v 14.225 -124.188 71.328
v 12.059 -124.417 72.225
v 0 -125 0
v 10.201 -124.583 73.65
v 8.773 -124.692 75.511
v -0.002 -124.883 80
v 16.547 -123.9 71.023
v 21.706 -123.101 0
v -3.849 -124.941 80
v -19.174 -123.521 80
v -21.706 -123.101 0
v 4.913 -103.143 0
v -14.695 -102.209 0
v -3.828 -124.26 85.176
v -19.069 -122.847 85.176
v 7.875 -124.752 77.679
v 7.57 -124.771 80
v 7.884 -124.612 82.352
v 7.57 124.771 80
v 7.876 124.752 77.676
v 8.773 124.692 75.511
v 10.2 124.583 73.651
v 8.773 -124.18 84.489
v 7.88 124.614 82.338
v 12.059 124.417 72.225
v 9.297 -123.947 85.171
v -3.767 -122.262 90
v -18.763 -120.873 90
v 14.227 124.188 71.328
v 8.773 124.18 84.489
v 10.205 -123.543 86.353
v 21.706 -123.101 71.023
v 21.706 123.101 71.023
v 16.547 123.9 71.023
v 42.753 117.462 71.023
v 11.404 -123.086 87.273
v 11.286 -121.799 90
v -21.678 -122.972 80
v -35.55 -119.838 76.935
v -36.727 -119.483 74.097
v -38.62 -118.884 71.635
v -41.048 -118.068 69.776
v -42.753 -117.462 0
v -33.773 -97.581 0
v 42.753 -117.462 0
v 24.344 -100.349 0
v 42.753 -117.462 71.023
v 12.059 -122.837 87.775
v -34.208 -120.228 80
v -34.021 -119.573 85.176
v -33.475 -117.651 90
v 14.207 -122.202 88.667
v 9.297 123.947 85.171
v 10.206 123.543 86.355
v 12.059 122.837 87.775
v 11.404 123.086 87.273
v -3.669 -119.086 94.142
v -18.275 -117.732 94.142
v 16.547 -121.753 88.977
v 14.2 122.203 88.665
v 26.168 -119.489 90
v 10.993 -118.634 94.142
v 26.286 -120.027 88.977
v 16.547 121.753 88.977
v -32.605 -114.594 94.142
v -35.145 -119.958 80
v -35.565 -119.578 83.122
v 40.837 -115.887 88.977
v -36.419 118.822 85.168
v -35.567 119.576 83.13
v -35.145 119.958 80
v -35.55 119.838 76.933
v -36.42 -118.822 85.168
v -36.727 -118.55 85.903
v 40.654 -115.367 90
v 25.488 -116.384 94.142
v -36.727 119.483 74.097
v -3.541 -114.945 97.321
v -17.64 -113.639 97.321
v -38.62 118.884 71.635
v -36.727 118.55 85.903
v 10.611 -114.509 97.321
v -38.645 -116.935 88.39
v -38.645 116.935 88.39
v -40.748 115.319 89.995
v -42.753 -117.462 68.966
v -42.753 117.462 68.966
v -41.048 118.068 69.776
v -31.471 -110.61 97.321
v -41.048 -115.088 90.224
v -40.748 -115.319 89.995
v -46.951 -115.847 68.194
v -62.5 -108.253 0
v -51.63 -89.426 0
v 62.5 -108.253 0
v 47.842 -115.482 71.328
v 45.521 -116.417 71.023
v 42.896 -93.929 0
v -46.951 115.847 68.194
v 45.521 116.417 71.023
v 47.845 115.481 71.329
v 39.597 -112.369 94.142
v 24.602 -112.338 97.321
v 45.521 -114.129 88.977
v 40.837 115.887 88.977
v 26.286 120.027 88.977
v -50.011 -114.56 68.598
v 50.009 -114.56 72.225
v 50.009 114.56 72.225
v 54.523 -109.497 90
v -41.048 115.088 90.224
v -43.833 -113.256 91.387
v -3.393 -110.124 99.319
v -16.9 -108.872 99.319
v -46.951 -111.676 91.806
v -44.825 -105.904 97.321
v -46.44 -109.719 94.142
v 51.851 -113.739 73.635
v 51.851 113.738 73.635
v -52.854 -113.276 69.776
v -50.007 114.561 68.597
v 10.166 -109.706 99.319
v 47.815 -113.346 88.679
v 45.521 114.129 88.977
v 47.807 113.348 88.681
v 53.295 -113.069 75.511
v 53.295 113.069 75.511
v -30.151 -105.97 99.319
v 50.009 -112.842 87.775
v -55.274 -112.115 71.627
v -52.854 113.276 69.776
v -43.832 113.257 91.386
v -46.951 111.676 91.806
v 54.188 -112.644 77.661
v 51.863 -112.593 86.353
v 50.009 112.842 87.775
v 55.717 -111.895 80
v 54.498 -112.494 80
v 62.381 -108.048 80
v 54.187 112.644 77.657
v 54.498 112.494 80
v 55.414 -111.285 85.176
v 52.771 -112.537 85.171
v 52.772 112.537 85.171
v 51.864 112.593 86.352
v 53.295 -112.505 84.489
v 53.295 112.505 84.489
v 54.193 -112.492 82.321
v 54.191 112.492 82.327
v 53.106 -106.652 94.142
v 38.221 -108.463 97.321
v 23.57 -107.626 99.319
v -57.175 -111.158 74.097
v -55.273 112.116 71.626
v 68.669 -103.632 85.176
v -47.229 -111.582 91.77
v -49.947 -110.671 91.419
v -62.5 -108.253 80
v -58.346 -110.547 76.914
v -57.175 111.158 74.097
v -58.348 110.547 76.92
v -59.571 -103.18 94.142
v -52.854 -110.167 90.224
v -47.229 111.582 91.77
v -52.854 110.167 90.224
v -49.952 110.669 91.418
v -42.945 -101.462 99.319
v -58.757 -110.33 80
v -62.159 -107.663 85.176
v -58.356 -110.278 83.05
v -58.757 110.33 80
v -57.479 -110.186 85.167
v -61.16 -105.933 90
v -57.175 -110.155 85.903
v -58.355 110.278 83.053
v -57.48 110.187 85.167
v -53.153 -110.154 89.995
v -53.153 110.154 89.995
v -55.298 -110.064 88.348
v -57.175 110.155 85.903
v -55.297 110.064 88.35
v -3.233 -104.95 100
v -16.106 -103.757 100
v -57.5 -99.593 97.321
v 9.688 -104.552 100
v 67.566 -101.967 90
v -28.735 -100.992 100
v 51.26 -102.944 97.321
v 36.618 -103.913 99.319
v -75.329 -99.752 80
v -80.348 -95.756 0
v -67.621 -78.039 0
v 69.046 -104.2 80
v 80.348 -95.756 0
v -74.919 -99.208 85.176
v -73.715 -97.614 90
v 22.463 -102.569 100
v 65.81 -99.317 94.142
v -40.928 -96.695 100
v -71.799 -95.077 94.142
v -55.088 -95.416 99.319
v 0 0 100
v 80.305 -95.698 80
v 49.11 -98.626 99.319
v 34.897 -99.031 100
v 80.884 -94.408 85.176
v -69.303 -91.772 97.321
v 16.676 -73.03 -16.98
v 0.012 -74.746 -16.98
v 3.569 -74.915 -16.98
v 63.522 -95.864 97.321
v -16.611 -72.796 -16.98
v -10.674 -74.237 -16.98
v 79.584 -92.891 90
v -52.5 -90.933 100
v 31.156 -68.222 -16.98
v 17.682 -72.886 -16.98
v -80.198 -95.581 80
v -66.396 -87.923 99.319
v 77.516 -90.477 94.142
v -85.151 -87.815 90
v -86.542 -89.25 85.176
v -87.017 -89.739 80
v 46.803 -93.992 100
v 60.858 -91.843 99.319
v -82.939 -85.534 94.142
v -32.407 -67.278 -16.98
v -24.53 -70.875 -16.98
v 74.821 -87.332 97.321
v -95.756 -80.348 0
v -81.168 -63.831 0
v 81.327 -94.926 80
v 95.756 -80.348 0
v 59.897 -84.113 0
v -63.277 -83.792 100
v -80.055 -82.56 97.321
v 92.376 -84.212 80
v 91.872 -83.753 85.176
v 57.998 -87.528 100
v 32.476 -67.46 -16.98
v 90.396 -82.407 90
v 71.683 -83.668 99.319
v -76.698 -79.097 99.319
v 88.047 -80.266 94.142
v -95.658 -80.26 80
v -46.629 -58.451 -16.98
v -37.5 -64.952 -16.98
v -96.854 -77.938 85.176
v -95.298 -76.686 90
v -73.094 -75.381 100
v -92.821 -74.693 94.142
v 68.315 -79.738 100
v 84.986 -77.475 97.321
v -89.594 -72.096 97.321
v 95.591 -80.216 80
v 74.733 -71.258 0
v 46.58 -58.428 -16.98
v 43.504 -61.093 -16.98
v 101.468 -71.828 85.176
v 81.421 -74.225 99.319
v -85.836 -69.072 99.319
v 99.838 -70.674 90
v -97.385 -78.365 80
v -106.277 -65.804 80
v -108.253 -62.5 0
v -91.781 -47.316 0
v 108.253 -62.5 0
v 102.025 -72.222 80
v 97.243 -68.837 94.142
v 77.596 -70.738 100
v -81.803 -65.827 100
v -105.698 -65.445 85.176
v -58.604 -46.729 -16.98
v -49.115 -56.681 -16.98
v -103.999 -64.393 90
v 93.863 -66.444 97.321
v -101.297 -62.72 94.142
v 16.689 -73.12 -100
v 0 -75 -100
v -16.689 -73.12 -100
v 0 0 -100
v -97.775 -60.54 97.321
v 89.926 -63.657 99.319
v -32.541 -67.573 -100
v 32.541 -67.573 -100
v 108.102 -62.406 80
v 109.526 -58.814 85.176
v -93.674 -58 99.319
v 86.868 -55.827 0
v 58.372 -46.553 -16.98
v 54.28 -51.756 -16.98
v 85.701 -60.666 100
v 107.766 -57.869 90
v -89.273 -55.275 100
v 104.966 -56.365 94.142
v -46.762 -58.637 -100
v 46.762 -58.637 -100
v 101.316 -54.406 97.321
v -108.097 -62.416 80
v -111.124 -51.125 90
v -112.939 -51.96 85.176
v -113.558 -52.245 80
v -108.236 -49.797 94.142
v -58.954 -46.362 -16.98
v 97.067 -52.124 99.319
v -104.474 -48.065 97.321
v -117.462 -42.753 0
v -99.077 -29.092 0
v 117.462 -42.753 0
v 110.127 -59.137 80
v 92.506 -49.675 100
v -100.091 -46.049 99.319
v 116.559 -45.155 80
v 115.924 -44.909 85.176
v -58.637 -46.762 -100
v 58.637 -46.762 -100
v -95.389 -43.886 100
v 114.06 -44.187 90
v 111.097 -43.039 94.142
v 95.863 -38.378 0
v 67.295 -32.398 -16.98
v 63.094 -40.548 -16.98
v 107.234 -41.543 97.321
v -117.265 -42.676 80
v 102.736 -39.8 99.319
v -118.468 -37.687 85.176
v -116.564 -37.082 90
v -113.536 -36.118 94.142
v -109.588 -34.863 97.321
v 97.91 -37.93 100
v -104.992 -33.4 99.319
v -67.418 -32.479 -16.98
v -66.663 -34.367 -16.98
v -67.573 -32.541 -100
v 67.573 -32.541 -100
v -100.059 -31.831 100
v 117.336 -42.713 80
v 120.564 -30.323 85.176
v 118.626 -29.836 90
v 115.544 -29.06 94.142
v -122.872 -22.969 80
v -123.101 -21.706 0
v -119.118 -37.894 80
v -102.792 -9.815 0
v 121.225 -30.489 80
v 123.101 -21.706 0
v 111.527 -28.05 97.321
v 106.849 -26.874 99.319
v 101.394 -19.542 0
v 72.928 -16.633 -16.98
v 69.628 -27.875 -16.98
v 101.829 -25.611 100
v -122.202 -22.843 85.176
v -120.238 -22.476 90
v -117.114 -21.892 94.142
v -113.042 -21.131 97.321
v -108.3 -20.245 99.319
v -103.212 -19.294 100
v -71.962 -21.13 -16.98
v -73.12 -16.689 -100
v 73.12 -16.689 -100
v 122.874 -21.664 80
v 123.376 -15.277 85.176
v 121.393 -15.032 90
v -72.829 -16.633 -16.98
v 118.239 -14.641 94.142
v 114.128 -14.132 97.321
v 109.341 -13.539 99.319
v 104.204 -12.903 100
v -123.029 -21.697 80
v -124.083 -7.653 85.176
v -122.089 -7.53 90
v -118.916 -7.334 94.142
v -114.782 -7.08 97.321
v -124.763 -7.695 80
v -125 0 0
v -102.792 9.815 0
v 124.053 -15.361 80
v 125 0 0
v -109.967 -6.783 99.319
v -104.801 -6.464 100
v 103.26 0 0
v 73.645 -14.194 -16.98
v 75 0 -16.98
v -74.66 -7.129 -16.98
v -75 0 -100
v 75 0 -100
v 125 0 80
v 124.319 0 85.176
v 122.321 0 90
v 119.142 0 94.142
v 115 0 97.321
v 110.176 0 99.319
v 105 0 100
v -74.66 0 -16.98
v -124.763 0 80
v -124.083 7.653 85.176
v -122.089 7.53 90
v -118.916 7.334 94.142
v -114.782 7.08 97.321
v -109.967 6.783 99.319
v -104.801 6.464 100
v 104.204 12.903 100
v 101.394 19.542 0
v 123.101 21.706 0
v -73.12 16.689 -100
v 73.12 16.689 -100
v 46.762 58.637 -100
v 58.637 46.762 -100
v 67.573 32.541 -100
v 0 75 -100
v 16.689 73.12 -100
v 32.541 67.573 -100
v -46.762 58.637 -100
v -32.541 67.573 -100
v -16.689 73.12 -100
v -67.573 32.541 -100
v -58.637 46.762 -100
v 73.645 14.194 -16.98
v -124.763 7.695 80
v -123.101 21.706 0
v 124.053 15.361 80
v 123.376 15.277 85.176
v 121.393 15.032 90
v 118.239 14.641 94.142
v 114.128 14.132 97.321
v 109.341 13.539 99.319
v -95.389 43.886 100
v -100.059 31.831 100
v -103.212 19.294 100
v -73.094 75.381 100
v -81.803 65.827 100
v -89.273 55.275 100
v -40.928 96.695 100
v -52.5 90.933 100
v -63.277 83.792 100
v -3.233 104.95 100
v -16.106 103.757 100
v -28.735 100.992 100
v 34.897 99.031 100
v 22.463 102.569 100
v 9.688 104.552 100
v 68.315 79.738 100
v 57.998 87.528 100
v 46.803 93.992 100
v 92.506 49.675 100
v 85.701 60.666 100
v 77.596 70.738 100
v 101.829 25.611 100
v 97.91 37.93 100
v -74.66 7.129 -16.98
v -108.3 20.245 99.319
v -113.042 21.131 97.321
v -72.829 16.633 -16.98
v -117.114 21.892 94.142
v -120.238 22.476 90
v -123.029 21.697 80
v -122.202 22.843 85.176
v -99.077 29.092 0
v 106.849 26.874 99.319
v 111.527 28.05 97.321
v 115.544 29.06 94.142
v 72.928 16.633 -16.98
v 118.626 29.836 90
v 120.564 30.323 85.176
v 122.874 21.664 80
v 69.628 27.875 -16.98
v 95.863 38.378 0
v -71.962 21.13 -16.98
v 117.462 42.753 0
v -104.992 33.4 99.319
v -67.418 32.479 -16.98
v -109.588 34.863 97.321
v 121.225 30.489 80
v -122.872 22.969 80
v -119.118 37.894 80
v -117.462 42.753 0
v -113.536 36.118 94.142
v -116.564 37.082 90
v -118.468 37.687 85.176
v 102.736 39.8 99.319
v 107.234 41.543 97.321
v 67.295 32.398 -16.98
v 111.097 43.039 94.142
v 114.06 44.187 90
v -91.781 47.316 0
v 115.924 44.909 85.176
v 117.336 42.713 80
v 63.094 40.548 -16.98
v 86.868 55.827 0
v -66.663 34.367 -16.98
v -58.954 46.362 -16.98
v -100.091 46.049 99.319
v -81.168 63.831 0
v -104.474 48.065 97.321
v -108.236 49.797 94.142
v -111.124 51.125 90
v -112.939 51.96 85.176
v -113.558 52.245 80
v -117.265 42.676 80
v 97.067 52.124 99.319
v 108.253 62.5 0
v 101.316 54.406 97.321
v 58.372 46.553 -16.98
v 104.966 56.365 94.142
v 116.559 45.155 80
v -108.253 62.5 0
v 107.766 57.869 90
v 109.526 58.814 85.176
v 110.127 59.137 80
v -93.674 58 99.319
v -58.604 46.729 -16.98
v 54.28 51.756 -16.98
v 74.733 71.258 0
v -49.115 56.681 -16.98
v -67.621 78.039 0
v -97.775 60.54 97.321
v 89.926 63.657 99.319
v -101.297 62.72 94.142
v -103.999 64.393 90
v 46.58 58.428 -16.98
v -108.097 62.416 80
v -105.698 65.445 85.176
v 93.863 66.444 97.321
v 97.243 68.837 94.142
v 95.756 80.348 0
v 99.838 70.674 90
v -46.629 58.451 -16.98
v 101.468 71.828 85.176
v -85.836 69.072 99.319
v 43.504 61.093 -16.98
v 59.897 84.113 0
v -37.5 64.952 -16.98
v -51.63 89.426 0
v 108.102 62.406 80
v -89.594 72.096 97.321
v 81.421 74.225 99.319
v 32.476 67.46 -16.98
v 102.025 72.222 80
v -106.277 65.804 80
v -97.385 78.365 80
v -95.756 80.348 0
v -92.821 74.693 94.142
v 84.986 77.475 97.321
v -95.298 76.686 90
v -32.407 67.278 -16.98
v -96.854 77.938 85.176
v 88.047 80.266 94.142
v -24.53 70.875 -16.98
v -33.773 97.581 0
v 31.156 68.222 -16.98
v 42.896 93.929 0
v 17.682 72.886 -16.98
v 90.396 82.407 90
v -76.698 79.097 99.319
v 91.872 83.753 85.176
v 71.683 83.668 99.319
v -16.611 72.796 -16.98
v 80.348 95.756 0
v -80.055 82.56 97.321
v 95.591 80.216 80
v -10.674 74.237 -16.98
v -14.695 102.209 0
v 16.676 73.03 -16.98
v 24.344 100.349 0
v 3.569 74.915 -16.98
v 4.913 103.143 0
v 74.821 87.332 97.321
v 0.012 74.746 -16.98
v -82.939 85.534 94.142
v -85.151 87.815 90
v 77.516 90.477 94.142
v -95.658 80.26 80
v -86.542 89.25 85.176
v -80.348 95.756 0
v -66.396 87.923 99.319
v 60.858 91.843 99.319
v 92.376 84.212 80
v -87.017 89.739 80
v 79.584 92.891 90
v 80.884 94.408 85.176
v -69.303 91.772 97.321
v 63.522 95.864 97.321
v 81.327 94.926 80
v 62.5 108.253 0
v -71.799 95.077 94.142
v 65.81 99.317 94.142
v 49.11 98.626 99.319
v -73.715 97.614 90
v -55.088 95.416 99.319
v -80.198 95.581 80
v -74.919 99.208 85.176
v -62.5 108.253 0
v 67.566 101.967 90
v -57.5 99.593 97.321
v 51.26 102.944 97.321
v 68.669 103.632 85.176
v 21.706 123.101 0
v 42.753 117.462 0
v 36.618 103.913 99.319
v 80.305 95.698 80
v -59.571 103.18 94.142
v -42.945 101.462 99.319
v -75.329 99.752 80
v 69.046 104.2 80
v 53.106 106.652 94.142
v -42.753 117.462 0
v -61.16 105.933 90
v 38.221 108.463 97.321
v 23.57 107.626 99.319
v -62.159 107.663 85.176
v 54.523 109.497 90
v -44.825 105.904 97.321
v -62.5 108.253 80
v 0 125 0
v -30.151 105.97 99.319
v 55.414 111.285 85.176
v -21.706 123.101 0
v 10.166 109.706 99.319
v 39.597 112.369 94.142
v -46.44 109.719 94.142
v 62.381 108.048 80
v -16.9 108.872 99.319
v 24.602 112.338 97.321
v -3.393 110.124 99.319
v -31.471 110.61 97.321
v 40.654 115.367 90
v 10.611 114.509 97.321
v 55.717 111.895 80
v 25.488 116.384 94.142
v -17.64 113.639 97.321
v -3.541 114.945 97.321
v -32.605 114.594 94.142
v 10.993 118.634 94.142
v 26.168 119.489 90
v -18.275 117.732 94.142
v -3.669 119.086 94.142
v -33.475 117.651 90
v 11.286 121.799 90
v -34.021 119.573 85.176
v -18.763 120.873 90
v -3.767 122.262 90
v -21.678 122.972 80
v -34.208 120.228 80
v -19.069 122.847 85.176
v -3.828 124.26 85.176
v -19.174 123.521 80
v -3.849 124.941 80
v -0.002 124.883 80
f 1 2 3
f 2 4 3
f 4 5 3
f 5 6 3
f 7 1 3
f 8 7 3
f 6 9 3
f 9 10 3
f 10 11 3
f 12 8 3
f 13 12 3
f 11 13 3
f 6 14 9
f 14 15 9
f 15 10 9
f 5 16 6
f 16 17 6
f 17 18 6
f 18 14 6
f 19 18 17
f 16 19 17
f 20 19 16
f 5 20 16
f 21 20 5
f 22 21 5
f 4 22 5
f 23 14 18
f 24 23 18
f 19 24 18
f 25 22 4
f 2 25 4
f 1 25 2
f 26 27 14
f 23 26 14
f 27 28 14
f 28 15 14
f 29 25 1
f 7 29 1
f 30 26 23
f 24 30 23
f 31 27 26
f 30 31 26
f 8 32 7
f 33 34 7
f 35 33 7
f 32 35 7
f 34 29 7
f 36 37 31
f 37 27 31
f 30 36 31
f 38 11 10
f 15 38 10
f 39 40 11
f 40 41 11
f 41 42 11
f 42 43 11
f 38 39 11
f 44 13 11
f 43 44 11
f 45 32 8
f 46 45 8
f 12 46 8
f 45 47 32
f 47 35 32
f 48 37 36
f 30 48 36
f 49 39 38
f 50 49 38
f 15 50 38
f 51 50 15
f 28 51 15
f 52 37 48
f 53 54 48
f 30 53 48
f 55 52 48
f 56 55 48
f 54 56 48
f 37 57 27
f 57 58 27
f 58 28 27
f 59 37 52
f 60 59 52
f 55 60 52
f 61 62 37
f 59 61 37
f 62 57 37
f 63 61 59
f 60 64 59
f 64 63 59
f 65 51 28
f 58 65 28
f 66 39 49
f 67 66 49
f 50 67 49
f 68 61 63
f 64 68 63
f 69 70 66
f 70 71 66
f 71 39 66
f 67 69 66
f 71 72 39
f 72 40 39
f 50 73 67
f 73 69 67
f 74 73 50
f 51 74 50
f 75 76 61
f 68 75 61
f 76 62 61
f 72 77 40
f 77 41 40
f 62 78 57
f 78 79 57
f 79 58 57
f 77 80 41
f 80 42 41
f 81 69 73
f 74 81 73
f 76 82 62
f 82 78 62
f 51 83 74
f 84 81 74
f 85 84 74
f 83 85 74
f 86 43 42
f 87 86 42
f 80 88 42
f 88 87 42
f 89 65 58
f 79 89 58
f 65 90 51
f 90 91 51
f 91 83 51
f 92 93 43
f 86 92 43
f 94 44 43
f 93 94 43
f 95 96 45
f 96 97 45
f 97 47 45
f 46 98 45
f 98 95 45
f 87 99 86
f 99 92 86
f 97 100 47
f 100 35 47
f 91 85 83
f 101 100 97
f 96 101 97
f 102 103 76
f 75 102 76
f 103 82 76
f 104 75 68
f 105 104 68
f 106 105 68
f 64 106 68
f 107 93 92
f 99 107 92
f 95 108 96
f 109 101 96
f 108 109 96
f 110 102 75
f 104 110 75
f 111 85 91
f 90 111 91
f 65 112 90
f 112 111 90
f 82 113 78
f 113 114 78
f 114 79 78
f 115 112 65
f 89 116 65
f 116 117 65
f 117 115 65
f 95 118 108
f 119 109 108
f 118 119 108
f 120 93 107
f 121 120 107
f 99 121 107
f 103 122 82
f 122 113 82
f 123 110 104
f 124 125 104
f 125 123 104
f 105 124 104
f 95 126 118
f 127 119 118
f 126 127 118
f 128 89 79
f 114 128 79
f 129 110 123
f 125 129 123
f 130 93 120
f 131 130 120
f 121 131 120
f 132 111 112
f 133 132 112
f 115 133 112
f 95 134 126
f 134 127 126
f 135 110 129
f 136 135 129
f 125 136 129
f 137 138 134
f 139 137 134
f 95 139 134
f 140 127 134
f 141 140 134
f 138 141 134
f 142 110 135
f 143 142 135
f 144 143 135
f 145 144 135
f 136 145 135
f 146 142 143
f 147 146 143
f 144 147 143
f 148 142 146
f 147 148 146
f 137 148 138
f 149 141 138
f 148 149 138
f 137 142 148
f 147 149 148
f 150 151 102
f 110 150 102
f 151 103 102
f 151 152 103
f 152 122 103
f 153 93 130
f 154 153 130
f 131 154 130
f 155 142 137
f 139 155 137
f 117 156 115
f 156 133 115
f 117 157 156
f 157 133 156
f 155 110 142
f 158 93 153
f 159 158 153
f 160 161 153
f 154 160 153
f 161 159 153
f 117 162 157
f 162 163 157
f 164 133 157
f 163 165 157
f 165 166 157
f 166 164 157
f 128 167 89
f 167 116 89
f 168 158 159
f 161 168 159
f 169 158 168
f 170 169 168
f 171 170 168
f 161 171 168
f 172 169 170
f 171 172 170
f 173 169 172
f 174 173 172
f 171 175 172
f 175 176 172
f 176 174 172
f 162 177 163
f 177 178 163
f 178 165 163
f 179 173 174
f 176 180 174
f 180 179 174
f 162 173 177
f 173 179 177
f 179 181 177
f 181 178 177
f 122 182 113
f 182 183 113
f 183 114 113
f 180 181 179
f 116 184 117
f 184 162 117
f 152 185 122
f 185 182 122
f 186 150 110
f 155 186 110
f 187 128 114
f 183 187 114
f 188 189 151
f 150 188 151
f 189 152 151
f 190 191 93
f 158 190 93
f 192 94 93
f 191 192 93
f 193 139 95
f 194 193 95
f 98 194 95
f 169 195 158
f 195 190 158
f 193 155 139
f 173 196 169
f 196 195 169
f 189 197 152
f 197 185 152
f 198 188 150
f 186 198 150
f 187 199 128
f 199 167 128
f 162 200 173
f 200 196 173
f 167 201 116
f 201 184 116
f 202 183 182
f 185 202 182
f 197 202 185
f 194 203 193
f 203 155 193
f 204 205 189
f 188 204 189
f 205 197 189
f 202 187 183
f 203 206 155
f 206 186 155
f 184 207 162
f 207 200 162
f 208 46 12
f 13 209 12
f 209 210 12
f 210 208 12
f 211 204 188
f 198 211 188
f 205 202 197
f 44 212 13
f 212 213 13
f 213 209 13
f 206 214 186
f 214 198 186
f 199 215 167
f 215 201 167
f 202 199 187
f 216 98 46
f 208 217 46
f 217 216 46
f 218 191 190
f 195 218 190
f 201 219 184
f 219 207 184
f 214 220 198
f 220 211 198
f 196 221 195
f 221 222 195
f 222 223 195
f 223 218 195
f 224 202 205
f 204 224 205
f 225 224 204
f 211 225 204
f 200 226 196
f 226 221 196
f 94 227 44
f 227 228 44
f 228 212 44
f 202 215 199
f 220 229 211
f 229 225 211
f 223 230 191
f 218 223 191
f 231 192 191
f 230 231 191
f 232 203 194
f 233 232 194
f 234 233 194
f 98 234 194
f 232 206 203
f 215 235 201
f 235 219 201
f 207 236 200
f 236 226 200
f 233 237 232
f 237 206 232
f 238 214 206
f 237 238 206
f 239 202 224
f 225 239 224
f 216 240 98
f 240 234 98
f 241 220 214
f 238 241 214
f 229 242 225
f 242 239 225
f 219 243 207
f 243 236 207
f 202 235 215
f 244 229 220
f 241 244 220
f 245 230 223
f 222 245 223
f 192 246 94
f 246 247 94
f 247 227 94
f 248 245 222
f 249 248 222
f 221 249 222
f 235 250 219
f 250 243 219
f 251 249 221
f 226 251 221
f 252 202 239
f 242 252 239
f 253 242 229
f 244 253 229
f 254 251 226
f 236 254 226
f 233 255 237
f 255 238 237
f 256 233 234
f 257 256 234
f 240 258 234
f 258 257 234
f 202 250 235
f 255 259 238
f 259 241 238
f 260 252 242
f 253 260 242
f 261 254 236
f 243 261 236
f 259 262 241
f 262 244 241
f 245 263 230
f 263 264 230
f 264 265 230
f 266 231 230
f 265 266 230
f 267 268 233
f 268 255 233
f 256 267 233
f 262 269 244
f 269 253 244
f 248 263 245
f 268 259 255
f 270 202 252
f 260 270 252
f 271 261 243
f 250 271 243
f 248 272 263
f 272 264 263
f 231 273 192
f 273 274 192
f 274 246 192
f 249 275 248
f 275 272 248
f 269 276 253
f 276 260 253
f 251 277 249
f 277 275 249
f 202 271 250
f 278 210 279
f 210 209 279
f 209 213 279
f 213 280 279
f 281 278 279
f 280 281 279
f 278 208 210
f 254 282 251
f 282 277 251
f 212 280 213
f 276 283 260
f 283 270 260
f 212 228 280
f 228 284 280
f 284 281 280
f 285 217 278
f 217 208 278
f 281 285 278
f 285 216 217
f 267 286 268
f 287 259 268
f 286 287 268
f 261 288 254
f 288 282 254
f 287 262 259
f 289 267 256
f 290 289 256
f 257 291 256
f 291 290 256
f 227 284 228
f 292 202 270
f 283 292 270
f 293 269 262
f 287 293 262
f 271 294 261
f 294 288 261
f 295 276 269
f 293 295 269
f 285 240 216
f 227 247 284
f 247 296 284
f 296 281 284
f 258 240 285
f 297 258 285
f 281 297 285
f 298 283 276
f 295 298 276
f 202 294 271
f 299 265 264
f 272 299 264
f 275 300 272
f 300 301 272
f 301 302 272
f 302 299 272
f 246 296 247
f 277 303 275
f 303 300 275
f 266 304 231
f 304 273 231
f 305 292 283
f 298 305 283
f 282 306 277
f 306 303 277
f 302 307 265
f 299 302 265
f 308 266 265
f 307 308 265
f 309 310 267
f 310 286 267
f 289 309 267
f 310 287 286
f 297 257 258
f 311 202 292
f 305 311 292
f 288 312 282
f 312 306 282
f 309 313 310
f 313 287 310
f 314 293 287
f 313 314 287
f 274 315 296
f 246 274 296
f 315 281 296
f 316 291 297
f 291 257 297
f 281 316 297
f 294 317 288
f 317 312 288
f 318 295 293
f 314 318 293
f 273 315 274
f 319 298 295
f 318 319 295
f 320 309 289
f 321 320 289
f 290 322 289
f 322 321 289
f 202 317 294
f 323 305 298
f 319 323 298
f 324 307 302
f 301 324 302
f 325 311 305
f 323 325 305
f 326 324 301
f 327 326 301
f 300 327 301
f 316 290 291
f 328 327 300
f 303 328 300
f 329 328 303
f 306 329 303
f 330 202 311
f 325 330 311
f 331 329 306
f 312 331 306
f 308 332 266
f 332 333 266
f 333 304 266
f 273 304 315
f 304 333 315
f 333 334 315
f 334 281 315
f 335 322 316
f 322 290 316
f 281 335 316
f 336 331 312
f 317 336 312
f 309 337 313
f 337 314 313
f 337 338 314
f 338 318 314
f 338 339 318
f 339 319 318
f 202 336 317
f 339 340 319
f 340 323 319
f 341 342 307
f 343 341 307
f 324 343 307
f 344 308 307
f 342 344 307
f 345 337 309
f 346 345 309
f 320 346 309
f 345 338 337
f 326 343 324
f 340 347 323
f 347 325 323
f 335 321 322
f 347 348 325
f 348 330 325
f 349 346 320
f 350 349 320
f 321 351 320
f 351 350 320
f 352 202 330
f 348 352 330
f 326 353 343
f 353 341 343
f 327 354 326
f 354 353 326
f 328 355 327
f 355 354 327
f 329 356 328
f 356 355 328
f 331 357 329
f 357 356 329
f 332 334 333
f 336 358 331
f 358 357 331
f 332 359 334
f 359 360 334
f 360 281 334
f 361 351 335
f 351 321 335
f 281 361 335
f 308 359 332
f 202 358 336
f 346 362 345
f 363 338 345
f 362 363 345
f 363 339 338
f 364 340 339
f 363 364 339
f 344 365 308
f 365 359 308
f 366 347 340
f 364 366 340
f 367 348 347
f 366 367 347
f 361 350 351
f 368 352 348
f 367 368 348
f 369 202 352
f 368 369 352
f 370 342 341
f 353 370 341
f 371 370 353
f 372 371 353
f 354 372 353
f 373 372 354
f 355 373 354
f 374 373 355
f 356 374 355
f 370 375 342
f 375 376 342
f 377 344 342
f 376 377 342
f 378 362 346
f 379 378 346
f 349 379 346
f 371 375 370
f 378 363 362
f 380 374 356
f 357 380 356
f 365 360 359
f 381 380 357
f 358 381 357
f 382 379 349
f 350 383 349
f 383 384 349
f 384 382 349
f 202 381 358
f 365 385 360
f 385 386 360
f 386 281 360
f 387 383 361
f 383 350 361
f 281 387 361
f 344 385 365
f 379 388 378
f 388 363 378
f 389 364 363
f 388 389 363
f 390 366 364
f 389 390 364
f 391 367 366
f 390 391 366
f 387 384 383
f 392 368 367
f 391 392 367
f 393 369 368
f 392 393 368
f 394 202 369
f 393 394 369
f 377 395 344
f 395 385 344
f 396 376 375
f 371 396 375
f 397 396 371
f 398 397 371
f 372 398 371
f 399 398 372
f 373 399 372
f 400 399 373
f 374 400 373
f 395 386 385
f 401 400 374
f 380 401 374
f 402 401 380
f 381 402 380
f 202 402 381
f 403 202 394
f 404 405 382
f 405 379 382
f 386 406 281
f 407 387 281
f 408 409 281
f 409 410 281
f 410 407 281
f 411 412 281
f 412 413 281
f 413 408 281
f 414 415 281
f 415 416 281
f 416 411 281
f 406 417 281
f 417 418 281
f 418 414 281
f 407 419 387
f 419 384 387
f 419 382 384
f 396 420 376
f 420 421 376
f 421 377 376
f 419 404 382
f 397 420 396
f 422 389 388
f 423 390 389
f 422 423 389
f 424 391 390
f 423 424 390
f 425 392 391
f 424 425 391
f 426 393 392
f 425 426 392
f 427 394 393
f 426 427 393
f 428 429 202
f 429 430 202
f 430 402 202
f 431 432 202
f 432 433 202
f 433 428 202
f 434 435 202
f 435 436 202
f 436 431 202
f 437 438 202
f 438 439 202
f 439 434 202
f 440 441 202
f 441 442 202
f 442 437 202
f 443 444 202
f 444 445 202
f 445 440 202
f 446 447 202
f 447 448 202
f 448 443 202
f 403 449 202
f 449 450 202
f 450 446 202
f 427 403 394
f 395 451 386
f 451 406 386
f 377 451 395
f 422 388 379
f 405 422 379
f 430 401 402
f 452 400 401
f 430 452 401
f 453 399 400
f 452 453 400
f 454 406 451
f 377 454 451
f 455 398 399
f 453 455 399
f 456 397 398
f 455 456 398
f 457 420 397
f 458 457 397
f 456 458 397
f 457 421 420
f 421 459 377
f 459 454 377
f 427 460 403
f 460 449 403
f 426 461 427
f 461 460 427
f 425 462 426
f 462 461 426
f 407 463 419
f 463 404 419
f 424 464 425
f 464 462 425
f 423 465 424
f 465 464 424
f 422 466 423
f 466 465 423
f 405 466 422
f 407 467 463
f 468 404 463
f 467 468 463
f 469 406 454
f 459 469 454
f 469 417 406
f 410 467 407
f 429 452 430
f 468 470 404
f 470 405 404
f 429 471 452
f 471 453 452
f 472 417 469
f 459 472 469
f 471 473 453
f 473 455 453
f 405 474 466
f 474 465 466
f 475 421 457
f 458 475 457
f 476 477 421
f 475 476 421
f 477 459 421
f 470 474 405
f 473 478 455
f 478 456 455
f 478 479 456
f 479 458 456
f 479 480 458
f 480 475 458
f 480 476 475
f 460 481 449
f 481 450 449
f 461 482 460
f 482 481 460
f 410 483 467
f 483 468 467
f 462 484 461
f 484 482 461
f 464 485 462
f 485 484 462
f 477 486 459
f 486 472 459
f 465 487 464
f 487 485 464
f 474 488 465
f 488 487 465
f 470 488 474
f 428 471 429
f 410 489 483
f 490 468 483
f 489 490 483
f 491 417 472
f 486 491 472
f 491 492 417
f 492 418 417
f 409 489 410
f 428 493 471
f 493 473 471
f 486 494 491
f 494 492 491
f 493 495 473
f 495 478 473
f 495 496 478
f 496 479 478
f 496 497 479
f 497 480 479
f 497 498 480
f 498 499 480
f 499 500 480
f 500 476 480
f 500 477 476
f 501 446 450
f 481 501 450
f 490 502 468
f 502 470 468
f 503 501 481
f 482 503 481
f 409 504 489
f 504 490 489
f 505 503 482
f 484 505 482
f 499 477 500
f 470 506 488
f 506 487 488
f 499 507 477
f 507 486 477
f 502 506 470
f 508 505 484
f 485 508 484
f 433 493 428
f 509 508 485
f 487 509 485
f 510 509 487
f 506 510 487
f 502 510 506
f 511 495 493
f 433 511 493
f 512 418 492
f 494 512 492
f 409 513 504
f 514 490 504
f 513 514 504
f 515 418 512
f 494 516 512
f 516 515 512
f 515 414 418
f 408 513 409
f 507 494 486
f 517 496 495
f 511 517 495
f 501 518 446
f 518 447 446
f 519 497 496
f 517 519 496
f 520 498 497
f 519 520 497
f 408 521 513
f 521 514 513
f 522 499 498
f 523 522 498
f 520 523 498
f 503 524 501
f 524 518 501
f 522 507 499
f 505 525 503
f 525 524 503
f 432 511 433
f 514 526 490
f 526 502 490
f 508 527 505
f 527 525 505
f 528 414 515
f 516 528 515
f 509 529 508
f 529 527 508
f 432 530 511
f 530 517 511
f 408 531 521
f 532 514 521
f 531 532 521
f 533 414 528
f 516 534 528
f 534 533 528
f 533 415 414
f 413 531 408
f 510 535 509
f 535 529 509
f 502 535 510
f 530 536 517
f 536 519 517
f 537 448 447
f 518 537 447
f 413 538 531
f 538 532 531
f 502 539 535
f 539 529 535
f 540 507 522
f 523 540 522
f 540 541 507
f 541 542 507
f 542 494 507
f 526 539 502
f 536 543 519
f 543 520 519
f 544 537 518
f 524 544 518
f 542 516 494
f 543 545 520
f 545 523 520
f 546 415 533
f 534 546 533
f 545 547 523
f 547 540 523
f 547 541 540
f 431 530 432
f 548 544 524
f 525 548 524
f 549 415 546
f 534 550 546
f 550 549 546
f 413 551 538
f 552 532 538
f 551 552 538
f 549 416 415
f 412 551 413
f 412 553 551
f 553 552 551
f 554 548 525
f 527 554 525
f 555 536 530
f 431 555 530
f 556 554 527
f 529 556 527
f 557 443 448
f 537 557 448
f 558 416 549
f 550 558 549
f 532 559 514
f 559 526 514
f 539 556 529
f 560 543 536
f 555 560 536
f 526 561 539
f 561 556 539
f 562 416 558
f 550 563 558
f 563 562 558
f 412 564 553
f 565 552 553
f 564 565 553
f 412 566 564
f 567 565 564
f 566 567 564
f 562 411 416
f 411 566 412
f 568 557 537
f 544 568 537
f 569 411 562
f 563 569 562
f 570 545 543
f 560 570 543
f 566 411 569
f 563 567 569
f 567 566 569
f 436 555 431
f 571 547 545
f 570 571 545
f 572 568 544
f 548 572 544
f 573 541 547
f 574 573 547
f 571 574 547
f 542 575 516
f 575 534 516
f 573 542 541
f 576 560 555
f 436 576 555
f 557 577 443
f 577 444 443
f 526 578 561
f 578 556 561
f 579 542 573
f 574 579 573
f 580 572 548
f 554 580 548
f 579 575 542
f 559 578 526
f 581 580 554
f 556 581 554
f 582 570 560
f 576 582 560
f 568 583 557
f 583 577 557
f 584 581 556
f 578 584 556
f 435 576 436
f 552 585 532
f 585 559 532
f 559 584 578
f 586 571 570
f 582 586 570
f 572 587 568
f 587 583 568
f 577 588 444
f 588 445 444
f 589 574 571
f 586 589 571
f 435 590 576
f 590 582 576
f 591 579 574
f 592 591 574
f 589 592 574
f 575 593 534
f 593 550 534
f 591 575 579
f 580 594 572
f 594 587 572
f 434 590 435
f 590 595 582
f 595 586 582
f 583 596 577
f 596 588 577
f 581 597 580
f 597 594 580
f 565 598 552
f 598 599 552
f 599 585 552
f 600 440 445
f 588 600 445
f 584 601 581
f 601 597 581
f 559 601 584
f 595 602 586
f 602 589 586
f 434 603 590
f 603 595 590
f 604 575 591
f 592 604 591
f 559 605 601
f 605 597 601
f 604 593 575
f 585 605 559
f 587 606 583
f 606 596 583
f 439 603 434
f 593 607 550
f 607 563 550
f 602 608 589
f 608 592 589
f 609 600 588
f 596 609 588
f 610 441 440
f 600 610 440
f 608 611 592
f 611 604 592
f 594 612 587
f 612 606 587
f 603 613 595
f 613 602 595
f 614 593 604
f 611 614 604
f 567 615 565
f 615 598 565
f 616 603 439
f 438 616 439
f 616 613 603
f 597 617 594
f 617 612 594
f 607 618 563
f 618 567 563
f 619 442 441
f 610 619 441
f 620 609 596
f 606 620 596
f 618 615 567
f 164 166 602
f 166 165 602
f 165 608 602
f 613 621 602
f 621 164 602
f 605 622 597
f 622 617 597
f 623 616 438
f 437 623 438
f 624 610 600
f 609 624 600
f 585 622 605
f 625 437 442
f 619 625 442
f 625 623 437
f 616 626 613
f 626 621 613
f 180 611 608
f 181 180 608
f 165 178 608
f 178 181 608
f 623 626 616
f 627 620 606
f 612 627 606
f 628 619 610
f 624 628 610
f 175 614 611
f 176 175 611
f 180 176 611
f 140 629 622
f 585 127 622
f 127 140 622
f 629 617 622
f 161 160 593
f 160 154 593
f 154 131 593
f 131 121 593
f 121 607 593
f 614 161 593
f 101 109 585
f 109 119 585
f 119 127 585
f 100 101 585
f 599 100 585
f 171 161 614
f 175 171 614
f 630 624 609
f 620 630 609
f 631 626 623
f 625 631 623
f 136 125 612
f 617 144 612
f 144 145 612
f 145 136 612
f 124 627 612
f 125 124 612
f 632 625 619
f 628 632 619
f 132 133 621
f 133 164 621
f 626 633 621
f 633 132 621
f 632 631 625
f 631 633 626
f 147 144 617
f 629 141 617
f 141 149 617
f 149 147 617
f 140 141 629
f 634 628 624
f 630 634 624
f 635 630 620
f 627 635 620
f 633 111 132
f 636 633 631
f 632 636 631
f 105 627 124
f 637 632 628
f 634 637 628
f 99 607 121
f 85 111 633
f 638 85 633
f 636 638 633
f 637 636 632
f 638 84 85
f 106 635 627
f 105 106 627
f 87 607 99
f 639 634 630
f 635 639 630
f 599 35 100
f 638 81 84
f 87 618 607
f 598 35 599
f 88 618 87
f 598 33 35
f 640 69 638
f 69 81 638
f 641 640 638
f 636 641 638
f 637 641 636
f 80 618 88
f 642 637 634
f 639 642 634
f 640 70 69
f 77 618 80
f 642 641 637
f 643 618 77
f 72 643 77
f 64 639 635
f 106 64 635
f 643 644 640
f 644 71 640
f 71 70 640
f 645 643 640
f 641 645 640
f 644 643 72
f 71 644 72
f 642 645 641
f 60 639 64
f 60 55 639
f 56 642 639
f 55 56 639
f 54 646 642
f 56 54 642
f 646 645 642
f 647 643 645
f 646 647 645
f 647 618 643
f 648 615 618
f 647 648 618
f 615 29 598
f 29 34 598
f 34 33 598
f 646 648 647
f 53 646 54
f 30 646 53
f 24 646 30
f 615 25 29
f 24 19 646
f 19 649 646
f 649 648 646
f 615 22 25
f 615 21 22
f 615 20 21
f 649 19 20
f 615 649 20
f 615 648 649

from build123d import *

# Parameters (mm, degrees)
SKETCH1_R               = 125
BOSS_EXTRUDE1_DEPTH     = 100
FILLET1_R               = 20
SKETCH2_R               = 11.805832703
CUT_EXTRUDE1_DEPTH      = 126
CUT_EXTRUDE1_DEPTH_BACK = 126
SKETCH3_R               = 75
BOSS_EXTRUDE2_DEPTH     = 100
CHAMFER1_SIZE           = 28.26
CHAMFER1_SIZE2          = 16.980321094


with BuildPart() as part:
    # Sketch1 → Boss-Extrude1 (new body)
    with BuildSketch(Plane.XY):
        Circle(SKETCH1_R)
    extrude(amount=BOSS_EXTRUDE1_DEPTH)

    # Fillet1
    fillet1_edges = [part.edges().sort_by_distance(p)[0] for p in [
        (-125, 0, 100),
    ]]
    fillet(fillet1_edges, radius=FILLET1_R)

    # Sketch2 → Cut-Extrude1 (cut, two sides)
    with BuildSketch(Plane(origin=(0, 0, 0), x_dir=(1, 0, 0), z_dir=(0, 1, 0))) as cut_extrude1_sk:
        with Locations((-46.950776643, -80)):
            Circle(SKETCH2_R)
        with BuildLine():
            Line((16.547286213, -71.022688997), (45.520734854, -71.022688997))
            ThreePointArc((45.520734854, -71.022688997), (54.498045857, -80), (45.520734854, -88.977311003))
            Line((45.520734854, -88.977311003), (16.547286213, -88.977311003))
            ThreePointArc((16.547286213, -88.977311003), (7.56997521, -80), (16.547286213, -71.022688997))
        make_face()
    extrude(amount=CUT_EXTRUDE1_DEPTH, mode=Mode.SUBTRACT)
    extrude(cut_extrude1_sk.sketch, amount=-CUT_EXTRUDE1_DEPTH_BACK, mode=Mode.SUBTRACT)

    # Sketch3 → Boss-Extrude2 (add)
    with BuildSketch(Plane(origin=(0, 0, 0), x_dir=(-1, 0, 0), z_dir=(0, 0, -1))):
        Circle(SKETCH3_R)
    extrude(amount=BOSS_EXTRUDE2_DEPTH)

    # Chamfer1
    chamfer1_edges = [part.edges().sort_by_distance(p)[0] for p in [
        (75, 0, 0),
    ]]
    chamfer1_side = [part.faces().sort_by_distance(p)[0] for p in [
        (-121.464466094, 0, 0),
    ]]
    chamfer(chamfer1_edges, length=CHAMFER1_SIZE, length2=CHAMFER1_SIZE2, reference=chamfer1_side[0])


solid = part.part
